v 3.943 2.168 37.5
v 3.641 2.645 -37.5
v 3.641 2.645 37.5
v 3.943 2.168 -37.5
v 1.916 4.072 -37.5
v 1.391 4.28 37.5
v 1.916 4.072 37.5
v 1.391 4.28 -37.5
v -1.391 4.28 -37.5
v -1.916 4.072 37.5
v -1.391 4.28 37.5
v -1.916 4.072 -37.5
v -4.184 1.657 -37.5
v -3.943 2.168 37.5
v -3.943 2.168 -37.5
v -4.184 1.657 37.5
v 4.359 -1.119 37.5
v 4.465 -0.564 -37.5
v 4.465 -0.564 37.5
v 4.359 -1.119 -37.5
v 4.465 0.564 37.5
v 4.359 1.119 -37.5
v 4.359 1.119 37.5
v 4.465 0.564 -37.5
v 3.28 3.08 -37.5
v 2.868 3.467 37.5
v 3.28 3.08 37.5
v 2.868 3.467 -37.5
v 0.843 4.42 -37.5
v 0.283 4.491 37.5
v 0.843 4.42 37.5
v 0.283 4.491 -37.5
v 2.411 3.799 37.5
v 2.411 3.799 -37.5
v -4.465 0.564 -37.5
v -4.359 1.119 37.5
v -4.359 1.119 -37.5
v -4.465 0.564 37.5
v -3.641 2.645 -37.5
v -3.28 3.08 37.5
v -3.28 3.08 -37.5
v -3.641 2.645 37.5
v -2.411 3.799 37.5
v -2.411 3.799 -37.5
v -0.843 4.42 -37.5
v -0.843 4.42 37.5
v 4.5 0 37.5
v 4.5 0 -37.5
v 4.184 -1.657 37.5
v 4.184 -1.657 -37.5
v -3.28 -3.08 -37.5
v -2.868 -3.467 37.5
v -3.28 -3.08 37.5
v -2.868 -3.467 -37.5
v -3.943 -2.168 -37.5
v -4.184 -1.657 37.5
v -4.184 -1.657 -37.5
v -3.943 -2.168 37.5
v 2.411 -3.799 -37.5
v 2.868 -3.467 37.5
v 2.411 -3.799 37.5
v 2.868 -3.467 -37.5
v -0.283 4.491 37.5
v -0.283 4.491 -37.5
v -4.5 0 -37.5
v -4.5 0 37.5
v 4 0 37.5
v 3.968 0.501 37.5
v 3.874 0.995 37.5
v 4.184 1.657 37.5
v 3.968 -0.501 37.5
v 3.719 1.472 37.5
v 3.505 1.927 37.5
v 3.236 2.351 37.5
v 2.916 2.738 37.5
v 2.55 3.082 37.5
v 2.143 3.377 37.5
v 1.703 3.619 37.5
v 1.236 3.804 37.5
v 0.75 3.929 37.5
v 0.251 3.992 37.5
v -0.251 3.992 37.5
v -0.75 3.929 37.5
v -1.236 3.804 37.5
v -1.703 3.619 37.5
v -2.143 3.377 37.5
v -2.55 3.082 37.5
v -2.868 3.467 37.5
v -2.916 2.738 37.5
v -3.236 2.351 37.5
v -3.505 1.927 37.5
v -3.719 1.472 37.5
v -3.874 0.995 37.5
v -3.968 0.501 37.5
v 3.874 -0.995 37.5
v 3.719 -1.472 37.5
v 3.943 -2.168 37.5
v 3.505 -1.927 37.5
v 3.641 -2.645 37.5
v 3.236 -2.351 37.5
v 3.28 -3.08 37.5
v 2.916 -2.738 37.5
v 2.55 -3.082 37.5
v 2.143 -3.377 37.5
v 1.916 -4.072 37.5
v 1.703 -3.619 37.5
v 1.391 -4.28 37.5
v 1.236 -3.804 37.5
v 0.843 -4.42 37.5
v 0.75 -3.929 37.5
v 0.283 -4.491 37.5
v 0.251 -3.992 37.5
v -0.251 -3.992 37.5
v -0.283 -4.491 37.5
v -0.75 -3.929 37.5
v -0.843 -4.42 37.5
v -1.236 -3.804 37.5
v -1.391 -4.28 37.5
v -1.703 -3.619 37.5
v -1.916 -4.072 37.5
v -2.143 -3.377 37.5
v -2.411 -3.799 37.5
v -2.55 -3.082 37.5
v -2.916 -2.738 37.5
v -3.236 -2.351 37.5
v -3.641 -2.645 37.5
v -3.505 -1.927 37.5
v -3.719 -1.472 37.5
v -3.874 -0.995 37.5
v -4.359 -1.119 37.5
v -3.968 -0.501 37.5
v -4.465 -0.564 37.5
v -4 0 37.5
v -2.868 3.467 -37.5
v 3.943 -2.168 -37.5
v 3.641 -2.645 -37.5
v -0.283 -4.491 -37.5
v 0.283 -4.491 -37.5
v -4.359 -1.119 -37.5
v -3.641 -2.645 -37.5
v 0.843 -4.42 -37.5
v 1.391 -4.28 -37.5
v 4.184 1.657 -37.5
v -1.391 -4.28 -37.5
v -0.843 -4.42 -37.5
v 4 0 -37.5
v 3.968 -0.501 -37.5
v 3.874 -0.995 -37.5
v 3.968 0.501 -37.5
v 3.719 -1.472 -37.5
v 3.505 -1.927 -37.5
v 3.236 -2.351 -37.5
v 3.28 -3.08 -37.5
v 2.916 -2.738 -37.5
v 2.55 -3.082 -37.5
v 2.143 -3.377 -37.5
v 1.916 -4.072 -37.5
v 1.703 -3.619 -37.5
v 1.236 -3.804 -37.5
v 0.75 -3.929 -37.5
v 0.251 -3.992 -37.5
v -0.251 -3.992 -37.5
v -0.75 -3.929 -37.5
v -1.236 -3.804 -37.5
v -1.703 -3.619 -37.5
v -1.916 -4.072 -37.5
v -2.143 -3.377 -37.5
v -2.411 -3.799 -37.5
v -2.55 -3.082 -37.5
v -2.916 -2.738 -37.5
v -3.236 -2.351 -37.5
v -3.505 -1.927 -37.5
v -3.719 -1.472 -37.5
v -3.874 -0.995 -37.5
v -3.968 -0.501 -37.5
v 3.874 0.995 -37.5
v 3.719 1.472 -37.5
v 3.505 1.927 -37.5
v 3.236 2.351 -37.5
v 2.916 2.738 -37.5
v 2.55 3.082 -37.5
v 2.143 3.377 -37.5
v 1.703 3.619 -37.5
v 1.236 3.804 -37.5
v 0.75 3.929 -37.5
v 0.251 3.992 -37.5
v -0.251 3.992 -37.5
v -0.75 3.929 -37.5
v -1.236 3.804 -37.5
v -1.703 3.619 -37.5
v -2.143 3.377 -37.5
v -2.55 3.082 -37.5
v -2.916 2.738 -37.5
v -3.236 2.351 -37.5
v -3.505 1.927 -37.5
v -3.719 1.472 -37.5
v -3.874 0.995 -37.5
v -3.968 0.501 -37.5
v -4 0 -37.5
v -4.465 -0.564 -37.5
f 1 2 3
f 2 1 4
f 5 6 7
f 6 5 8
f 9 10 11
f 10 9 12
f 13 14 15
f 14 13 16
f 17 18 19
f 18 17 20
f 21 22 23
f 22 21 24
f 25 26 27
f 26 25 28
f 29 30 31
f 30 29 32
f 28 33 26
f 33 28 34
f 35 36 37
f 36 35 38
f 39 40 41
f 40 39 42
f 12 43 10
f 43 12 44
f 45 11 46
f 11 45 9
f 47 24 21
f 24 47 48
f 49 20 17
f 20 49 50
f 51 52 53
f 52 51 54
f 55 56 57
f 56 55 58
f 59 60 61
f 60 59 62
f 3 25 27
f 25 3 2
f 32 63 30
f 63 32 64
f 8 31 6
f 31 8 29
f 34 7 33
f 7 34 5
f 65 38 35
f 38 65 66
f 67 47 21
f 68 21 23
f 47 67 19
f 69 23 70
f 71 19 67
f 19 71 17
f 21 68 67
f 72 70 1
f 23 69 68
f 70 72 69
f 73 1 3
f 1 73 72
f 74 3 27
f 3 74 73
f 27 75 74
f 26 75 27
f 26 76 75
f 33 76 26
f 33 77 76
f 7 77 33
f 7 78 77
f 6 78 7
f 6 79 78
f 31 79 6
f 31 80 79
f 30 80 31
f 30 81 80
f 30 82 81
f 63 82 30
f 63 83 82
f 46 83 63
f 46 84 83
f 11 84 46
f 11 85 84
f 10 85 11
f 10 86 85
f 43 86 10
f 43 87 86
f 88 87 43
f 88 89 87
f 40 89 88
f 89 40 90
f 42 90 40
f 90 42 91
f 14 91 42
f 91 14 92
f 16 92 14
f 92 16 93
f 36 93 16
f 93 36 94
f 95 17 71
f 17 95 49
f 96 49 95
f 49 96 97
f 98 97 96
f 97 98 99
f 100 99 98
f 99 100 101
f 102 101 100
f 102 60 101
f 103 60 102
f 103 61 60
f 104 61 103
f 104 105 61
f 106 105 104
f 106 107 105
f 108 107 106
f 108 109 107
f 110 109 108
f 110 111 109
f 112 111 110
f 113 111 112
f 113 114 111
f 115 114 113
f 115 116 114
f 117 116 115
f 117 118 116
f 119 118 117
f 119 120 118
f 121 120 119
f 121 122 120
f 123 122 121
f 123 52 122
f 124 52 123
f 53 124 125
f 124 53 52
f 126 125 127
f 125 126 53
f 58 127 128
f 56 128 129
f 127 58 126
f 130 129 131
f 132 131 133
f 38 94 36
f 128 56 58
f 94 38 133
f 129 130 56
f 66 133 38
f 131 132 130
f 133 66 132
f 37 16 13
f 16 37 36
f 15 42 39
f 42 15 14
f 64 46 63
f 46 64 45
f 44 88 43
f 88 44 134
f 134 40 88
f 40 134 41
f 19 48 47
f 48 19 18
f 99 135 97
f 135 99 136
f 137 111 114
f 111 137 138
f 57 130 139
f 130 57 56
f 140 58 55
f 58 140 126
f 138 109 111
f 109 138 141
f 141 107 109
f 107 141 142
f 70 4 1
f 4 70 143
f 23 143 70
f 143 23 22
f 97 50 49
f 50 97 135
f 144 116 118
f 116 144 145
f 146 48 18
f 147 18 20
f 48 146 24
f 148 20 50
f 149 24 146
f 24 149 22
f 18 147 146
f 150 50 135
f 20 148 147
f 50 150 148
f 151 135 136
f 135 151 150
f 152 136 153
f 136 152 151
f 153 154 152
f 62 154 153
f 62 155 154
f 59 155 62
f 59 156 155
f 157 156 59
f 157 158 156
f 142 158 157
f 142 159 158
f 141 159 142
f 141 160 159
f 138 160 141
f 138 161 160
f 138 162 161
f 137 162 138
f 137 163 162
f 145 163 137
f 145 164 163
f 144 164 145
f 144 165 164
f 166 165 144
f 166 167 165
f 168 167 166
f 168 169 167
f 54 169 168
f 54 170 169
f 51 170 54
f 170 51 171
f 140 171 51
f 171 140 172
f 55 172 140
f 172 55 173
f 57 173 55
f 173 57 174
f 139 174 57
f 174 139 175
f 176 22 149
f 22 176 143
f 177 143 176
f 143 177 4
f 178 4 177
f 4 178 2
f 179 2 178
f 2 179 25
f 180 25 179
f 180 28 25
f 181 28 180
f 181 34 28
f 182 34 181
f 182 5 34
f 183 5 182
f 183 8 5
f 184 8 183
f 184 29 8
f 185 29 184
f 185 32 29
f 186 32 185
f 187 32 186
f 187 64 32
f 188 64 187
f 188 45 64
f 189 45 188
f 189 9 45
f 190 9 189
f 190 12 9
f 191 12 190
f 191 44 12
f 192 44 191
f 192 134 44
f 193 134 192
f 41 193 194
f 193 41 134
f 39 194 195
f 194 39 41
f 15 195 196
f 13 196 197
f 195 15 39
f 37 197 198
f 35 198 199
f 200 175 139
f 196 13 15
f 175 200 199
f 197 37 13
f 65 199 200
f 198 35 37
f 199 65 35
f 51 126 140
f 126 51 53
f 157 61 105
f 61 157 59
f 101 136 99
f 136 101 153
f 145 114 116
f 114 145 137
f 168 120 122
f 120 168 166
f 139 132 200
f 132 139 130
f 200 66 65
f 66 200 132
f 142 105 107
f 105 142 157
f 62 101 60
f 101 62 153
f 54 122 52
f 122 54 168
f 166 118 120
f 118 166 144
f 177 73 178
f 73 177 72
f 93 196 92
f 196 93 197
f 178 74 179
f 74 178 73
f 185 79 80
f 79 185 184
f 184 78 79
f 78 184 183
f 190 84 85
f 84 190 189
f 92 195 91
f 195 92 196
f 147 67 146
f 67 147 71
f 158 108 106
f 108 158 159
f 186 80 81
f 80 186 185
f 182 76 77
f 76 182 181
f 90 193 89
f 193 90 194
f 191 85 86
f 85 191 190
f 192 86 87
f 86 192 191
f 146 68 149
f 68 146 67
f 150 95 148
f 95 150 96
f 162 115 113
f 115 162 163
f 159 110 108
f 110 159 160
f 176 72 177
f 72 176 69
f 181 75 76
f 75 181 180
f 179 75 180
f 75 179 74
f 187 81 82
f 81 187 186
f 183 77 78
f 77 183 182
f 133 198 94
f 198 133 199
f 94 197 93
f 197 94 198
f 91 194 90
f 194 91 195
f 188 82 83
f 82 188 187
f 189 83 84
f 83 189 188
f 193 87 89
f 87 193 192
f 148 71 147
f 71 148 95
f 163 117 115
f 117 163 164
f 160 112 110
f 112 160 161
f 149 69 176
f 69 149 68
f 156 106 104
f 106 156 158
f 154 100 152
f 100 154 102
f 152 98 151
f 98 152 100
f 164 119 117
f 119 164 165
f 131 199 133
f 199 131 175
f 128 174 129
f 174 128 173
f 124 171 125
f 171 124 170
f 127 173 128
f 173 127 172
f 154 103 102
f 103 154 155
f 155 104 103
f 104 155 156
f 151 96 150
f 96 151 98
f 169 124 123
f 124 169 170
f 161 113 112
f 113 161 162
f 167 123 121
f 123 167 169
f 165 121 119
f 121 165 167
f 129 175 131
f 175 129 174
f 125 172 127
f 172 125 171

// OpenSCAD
$fn = 50;


difference() {
	union() {
		translate(v = [0, 0, -37.5000000000]) {
			cylinder(h = 75, r = 4.5000000000);
		}
	}
	union() {
		translate(v = [0, 0, -100.0000000000]) {
			cylinder(h = 200, r = 4);
		}
	}
}
